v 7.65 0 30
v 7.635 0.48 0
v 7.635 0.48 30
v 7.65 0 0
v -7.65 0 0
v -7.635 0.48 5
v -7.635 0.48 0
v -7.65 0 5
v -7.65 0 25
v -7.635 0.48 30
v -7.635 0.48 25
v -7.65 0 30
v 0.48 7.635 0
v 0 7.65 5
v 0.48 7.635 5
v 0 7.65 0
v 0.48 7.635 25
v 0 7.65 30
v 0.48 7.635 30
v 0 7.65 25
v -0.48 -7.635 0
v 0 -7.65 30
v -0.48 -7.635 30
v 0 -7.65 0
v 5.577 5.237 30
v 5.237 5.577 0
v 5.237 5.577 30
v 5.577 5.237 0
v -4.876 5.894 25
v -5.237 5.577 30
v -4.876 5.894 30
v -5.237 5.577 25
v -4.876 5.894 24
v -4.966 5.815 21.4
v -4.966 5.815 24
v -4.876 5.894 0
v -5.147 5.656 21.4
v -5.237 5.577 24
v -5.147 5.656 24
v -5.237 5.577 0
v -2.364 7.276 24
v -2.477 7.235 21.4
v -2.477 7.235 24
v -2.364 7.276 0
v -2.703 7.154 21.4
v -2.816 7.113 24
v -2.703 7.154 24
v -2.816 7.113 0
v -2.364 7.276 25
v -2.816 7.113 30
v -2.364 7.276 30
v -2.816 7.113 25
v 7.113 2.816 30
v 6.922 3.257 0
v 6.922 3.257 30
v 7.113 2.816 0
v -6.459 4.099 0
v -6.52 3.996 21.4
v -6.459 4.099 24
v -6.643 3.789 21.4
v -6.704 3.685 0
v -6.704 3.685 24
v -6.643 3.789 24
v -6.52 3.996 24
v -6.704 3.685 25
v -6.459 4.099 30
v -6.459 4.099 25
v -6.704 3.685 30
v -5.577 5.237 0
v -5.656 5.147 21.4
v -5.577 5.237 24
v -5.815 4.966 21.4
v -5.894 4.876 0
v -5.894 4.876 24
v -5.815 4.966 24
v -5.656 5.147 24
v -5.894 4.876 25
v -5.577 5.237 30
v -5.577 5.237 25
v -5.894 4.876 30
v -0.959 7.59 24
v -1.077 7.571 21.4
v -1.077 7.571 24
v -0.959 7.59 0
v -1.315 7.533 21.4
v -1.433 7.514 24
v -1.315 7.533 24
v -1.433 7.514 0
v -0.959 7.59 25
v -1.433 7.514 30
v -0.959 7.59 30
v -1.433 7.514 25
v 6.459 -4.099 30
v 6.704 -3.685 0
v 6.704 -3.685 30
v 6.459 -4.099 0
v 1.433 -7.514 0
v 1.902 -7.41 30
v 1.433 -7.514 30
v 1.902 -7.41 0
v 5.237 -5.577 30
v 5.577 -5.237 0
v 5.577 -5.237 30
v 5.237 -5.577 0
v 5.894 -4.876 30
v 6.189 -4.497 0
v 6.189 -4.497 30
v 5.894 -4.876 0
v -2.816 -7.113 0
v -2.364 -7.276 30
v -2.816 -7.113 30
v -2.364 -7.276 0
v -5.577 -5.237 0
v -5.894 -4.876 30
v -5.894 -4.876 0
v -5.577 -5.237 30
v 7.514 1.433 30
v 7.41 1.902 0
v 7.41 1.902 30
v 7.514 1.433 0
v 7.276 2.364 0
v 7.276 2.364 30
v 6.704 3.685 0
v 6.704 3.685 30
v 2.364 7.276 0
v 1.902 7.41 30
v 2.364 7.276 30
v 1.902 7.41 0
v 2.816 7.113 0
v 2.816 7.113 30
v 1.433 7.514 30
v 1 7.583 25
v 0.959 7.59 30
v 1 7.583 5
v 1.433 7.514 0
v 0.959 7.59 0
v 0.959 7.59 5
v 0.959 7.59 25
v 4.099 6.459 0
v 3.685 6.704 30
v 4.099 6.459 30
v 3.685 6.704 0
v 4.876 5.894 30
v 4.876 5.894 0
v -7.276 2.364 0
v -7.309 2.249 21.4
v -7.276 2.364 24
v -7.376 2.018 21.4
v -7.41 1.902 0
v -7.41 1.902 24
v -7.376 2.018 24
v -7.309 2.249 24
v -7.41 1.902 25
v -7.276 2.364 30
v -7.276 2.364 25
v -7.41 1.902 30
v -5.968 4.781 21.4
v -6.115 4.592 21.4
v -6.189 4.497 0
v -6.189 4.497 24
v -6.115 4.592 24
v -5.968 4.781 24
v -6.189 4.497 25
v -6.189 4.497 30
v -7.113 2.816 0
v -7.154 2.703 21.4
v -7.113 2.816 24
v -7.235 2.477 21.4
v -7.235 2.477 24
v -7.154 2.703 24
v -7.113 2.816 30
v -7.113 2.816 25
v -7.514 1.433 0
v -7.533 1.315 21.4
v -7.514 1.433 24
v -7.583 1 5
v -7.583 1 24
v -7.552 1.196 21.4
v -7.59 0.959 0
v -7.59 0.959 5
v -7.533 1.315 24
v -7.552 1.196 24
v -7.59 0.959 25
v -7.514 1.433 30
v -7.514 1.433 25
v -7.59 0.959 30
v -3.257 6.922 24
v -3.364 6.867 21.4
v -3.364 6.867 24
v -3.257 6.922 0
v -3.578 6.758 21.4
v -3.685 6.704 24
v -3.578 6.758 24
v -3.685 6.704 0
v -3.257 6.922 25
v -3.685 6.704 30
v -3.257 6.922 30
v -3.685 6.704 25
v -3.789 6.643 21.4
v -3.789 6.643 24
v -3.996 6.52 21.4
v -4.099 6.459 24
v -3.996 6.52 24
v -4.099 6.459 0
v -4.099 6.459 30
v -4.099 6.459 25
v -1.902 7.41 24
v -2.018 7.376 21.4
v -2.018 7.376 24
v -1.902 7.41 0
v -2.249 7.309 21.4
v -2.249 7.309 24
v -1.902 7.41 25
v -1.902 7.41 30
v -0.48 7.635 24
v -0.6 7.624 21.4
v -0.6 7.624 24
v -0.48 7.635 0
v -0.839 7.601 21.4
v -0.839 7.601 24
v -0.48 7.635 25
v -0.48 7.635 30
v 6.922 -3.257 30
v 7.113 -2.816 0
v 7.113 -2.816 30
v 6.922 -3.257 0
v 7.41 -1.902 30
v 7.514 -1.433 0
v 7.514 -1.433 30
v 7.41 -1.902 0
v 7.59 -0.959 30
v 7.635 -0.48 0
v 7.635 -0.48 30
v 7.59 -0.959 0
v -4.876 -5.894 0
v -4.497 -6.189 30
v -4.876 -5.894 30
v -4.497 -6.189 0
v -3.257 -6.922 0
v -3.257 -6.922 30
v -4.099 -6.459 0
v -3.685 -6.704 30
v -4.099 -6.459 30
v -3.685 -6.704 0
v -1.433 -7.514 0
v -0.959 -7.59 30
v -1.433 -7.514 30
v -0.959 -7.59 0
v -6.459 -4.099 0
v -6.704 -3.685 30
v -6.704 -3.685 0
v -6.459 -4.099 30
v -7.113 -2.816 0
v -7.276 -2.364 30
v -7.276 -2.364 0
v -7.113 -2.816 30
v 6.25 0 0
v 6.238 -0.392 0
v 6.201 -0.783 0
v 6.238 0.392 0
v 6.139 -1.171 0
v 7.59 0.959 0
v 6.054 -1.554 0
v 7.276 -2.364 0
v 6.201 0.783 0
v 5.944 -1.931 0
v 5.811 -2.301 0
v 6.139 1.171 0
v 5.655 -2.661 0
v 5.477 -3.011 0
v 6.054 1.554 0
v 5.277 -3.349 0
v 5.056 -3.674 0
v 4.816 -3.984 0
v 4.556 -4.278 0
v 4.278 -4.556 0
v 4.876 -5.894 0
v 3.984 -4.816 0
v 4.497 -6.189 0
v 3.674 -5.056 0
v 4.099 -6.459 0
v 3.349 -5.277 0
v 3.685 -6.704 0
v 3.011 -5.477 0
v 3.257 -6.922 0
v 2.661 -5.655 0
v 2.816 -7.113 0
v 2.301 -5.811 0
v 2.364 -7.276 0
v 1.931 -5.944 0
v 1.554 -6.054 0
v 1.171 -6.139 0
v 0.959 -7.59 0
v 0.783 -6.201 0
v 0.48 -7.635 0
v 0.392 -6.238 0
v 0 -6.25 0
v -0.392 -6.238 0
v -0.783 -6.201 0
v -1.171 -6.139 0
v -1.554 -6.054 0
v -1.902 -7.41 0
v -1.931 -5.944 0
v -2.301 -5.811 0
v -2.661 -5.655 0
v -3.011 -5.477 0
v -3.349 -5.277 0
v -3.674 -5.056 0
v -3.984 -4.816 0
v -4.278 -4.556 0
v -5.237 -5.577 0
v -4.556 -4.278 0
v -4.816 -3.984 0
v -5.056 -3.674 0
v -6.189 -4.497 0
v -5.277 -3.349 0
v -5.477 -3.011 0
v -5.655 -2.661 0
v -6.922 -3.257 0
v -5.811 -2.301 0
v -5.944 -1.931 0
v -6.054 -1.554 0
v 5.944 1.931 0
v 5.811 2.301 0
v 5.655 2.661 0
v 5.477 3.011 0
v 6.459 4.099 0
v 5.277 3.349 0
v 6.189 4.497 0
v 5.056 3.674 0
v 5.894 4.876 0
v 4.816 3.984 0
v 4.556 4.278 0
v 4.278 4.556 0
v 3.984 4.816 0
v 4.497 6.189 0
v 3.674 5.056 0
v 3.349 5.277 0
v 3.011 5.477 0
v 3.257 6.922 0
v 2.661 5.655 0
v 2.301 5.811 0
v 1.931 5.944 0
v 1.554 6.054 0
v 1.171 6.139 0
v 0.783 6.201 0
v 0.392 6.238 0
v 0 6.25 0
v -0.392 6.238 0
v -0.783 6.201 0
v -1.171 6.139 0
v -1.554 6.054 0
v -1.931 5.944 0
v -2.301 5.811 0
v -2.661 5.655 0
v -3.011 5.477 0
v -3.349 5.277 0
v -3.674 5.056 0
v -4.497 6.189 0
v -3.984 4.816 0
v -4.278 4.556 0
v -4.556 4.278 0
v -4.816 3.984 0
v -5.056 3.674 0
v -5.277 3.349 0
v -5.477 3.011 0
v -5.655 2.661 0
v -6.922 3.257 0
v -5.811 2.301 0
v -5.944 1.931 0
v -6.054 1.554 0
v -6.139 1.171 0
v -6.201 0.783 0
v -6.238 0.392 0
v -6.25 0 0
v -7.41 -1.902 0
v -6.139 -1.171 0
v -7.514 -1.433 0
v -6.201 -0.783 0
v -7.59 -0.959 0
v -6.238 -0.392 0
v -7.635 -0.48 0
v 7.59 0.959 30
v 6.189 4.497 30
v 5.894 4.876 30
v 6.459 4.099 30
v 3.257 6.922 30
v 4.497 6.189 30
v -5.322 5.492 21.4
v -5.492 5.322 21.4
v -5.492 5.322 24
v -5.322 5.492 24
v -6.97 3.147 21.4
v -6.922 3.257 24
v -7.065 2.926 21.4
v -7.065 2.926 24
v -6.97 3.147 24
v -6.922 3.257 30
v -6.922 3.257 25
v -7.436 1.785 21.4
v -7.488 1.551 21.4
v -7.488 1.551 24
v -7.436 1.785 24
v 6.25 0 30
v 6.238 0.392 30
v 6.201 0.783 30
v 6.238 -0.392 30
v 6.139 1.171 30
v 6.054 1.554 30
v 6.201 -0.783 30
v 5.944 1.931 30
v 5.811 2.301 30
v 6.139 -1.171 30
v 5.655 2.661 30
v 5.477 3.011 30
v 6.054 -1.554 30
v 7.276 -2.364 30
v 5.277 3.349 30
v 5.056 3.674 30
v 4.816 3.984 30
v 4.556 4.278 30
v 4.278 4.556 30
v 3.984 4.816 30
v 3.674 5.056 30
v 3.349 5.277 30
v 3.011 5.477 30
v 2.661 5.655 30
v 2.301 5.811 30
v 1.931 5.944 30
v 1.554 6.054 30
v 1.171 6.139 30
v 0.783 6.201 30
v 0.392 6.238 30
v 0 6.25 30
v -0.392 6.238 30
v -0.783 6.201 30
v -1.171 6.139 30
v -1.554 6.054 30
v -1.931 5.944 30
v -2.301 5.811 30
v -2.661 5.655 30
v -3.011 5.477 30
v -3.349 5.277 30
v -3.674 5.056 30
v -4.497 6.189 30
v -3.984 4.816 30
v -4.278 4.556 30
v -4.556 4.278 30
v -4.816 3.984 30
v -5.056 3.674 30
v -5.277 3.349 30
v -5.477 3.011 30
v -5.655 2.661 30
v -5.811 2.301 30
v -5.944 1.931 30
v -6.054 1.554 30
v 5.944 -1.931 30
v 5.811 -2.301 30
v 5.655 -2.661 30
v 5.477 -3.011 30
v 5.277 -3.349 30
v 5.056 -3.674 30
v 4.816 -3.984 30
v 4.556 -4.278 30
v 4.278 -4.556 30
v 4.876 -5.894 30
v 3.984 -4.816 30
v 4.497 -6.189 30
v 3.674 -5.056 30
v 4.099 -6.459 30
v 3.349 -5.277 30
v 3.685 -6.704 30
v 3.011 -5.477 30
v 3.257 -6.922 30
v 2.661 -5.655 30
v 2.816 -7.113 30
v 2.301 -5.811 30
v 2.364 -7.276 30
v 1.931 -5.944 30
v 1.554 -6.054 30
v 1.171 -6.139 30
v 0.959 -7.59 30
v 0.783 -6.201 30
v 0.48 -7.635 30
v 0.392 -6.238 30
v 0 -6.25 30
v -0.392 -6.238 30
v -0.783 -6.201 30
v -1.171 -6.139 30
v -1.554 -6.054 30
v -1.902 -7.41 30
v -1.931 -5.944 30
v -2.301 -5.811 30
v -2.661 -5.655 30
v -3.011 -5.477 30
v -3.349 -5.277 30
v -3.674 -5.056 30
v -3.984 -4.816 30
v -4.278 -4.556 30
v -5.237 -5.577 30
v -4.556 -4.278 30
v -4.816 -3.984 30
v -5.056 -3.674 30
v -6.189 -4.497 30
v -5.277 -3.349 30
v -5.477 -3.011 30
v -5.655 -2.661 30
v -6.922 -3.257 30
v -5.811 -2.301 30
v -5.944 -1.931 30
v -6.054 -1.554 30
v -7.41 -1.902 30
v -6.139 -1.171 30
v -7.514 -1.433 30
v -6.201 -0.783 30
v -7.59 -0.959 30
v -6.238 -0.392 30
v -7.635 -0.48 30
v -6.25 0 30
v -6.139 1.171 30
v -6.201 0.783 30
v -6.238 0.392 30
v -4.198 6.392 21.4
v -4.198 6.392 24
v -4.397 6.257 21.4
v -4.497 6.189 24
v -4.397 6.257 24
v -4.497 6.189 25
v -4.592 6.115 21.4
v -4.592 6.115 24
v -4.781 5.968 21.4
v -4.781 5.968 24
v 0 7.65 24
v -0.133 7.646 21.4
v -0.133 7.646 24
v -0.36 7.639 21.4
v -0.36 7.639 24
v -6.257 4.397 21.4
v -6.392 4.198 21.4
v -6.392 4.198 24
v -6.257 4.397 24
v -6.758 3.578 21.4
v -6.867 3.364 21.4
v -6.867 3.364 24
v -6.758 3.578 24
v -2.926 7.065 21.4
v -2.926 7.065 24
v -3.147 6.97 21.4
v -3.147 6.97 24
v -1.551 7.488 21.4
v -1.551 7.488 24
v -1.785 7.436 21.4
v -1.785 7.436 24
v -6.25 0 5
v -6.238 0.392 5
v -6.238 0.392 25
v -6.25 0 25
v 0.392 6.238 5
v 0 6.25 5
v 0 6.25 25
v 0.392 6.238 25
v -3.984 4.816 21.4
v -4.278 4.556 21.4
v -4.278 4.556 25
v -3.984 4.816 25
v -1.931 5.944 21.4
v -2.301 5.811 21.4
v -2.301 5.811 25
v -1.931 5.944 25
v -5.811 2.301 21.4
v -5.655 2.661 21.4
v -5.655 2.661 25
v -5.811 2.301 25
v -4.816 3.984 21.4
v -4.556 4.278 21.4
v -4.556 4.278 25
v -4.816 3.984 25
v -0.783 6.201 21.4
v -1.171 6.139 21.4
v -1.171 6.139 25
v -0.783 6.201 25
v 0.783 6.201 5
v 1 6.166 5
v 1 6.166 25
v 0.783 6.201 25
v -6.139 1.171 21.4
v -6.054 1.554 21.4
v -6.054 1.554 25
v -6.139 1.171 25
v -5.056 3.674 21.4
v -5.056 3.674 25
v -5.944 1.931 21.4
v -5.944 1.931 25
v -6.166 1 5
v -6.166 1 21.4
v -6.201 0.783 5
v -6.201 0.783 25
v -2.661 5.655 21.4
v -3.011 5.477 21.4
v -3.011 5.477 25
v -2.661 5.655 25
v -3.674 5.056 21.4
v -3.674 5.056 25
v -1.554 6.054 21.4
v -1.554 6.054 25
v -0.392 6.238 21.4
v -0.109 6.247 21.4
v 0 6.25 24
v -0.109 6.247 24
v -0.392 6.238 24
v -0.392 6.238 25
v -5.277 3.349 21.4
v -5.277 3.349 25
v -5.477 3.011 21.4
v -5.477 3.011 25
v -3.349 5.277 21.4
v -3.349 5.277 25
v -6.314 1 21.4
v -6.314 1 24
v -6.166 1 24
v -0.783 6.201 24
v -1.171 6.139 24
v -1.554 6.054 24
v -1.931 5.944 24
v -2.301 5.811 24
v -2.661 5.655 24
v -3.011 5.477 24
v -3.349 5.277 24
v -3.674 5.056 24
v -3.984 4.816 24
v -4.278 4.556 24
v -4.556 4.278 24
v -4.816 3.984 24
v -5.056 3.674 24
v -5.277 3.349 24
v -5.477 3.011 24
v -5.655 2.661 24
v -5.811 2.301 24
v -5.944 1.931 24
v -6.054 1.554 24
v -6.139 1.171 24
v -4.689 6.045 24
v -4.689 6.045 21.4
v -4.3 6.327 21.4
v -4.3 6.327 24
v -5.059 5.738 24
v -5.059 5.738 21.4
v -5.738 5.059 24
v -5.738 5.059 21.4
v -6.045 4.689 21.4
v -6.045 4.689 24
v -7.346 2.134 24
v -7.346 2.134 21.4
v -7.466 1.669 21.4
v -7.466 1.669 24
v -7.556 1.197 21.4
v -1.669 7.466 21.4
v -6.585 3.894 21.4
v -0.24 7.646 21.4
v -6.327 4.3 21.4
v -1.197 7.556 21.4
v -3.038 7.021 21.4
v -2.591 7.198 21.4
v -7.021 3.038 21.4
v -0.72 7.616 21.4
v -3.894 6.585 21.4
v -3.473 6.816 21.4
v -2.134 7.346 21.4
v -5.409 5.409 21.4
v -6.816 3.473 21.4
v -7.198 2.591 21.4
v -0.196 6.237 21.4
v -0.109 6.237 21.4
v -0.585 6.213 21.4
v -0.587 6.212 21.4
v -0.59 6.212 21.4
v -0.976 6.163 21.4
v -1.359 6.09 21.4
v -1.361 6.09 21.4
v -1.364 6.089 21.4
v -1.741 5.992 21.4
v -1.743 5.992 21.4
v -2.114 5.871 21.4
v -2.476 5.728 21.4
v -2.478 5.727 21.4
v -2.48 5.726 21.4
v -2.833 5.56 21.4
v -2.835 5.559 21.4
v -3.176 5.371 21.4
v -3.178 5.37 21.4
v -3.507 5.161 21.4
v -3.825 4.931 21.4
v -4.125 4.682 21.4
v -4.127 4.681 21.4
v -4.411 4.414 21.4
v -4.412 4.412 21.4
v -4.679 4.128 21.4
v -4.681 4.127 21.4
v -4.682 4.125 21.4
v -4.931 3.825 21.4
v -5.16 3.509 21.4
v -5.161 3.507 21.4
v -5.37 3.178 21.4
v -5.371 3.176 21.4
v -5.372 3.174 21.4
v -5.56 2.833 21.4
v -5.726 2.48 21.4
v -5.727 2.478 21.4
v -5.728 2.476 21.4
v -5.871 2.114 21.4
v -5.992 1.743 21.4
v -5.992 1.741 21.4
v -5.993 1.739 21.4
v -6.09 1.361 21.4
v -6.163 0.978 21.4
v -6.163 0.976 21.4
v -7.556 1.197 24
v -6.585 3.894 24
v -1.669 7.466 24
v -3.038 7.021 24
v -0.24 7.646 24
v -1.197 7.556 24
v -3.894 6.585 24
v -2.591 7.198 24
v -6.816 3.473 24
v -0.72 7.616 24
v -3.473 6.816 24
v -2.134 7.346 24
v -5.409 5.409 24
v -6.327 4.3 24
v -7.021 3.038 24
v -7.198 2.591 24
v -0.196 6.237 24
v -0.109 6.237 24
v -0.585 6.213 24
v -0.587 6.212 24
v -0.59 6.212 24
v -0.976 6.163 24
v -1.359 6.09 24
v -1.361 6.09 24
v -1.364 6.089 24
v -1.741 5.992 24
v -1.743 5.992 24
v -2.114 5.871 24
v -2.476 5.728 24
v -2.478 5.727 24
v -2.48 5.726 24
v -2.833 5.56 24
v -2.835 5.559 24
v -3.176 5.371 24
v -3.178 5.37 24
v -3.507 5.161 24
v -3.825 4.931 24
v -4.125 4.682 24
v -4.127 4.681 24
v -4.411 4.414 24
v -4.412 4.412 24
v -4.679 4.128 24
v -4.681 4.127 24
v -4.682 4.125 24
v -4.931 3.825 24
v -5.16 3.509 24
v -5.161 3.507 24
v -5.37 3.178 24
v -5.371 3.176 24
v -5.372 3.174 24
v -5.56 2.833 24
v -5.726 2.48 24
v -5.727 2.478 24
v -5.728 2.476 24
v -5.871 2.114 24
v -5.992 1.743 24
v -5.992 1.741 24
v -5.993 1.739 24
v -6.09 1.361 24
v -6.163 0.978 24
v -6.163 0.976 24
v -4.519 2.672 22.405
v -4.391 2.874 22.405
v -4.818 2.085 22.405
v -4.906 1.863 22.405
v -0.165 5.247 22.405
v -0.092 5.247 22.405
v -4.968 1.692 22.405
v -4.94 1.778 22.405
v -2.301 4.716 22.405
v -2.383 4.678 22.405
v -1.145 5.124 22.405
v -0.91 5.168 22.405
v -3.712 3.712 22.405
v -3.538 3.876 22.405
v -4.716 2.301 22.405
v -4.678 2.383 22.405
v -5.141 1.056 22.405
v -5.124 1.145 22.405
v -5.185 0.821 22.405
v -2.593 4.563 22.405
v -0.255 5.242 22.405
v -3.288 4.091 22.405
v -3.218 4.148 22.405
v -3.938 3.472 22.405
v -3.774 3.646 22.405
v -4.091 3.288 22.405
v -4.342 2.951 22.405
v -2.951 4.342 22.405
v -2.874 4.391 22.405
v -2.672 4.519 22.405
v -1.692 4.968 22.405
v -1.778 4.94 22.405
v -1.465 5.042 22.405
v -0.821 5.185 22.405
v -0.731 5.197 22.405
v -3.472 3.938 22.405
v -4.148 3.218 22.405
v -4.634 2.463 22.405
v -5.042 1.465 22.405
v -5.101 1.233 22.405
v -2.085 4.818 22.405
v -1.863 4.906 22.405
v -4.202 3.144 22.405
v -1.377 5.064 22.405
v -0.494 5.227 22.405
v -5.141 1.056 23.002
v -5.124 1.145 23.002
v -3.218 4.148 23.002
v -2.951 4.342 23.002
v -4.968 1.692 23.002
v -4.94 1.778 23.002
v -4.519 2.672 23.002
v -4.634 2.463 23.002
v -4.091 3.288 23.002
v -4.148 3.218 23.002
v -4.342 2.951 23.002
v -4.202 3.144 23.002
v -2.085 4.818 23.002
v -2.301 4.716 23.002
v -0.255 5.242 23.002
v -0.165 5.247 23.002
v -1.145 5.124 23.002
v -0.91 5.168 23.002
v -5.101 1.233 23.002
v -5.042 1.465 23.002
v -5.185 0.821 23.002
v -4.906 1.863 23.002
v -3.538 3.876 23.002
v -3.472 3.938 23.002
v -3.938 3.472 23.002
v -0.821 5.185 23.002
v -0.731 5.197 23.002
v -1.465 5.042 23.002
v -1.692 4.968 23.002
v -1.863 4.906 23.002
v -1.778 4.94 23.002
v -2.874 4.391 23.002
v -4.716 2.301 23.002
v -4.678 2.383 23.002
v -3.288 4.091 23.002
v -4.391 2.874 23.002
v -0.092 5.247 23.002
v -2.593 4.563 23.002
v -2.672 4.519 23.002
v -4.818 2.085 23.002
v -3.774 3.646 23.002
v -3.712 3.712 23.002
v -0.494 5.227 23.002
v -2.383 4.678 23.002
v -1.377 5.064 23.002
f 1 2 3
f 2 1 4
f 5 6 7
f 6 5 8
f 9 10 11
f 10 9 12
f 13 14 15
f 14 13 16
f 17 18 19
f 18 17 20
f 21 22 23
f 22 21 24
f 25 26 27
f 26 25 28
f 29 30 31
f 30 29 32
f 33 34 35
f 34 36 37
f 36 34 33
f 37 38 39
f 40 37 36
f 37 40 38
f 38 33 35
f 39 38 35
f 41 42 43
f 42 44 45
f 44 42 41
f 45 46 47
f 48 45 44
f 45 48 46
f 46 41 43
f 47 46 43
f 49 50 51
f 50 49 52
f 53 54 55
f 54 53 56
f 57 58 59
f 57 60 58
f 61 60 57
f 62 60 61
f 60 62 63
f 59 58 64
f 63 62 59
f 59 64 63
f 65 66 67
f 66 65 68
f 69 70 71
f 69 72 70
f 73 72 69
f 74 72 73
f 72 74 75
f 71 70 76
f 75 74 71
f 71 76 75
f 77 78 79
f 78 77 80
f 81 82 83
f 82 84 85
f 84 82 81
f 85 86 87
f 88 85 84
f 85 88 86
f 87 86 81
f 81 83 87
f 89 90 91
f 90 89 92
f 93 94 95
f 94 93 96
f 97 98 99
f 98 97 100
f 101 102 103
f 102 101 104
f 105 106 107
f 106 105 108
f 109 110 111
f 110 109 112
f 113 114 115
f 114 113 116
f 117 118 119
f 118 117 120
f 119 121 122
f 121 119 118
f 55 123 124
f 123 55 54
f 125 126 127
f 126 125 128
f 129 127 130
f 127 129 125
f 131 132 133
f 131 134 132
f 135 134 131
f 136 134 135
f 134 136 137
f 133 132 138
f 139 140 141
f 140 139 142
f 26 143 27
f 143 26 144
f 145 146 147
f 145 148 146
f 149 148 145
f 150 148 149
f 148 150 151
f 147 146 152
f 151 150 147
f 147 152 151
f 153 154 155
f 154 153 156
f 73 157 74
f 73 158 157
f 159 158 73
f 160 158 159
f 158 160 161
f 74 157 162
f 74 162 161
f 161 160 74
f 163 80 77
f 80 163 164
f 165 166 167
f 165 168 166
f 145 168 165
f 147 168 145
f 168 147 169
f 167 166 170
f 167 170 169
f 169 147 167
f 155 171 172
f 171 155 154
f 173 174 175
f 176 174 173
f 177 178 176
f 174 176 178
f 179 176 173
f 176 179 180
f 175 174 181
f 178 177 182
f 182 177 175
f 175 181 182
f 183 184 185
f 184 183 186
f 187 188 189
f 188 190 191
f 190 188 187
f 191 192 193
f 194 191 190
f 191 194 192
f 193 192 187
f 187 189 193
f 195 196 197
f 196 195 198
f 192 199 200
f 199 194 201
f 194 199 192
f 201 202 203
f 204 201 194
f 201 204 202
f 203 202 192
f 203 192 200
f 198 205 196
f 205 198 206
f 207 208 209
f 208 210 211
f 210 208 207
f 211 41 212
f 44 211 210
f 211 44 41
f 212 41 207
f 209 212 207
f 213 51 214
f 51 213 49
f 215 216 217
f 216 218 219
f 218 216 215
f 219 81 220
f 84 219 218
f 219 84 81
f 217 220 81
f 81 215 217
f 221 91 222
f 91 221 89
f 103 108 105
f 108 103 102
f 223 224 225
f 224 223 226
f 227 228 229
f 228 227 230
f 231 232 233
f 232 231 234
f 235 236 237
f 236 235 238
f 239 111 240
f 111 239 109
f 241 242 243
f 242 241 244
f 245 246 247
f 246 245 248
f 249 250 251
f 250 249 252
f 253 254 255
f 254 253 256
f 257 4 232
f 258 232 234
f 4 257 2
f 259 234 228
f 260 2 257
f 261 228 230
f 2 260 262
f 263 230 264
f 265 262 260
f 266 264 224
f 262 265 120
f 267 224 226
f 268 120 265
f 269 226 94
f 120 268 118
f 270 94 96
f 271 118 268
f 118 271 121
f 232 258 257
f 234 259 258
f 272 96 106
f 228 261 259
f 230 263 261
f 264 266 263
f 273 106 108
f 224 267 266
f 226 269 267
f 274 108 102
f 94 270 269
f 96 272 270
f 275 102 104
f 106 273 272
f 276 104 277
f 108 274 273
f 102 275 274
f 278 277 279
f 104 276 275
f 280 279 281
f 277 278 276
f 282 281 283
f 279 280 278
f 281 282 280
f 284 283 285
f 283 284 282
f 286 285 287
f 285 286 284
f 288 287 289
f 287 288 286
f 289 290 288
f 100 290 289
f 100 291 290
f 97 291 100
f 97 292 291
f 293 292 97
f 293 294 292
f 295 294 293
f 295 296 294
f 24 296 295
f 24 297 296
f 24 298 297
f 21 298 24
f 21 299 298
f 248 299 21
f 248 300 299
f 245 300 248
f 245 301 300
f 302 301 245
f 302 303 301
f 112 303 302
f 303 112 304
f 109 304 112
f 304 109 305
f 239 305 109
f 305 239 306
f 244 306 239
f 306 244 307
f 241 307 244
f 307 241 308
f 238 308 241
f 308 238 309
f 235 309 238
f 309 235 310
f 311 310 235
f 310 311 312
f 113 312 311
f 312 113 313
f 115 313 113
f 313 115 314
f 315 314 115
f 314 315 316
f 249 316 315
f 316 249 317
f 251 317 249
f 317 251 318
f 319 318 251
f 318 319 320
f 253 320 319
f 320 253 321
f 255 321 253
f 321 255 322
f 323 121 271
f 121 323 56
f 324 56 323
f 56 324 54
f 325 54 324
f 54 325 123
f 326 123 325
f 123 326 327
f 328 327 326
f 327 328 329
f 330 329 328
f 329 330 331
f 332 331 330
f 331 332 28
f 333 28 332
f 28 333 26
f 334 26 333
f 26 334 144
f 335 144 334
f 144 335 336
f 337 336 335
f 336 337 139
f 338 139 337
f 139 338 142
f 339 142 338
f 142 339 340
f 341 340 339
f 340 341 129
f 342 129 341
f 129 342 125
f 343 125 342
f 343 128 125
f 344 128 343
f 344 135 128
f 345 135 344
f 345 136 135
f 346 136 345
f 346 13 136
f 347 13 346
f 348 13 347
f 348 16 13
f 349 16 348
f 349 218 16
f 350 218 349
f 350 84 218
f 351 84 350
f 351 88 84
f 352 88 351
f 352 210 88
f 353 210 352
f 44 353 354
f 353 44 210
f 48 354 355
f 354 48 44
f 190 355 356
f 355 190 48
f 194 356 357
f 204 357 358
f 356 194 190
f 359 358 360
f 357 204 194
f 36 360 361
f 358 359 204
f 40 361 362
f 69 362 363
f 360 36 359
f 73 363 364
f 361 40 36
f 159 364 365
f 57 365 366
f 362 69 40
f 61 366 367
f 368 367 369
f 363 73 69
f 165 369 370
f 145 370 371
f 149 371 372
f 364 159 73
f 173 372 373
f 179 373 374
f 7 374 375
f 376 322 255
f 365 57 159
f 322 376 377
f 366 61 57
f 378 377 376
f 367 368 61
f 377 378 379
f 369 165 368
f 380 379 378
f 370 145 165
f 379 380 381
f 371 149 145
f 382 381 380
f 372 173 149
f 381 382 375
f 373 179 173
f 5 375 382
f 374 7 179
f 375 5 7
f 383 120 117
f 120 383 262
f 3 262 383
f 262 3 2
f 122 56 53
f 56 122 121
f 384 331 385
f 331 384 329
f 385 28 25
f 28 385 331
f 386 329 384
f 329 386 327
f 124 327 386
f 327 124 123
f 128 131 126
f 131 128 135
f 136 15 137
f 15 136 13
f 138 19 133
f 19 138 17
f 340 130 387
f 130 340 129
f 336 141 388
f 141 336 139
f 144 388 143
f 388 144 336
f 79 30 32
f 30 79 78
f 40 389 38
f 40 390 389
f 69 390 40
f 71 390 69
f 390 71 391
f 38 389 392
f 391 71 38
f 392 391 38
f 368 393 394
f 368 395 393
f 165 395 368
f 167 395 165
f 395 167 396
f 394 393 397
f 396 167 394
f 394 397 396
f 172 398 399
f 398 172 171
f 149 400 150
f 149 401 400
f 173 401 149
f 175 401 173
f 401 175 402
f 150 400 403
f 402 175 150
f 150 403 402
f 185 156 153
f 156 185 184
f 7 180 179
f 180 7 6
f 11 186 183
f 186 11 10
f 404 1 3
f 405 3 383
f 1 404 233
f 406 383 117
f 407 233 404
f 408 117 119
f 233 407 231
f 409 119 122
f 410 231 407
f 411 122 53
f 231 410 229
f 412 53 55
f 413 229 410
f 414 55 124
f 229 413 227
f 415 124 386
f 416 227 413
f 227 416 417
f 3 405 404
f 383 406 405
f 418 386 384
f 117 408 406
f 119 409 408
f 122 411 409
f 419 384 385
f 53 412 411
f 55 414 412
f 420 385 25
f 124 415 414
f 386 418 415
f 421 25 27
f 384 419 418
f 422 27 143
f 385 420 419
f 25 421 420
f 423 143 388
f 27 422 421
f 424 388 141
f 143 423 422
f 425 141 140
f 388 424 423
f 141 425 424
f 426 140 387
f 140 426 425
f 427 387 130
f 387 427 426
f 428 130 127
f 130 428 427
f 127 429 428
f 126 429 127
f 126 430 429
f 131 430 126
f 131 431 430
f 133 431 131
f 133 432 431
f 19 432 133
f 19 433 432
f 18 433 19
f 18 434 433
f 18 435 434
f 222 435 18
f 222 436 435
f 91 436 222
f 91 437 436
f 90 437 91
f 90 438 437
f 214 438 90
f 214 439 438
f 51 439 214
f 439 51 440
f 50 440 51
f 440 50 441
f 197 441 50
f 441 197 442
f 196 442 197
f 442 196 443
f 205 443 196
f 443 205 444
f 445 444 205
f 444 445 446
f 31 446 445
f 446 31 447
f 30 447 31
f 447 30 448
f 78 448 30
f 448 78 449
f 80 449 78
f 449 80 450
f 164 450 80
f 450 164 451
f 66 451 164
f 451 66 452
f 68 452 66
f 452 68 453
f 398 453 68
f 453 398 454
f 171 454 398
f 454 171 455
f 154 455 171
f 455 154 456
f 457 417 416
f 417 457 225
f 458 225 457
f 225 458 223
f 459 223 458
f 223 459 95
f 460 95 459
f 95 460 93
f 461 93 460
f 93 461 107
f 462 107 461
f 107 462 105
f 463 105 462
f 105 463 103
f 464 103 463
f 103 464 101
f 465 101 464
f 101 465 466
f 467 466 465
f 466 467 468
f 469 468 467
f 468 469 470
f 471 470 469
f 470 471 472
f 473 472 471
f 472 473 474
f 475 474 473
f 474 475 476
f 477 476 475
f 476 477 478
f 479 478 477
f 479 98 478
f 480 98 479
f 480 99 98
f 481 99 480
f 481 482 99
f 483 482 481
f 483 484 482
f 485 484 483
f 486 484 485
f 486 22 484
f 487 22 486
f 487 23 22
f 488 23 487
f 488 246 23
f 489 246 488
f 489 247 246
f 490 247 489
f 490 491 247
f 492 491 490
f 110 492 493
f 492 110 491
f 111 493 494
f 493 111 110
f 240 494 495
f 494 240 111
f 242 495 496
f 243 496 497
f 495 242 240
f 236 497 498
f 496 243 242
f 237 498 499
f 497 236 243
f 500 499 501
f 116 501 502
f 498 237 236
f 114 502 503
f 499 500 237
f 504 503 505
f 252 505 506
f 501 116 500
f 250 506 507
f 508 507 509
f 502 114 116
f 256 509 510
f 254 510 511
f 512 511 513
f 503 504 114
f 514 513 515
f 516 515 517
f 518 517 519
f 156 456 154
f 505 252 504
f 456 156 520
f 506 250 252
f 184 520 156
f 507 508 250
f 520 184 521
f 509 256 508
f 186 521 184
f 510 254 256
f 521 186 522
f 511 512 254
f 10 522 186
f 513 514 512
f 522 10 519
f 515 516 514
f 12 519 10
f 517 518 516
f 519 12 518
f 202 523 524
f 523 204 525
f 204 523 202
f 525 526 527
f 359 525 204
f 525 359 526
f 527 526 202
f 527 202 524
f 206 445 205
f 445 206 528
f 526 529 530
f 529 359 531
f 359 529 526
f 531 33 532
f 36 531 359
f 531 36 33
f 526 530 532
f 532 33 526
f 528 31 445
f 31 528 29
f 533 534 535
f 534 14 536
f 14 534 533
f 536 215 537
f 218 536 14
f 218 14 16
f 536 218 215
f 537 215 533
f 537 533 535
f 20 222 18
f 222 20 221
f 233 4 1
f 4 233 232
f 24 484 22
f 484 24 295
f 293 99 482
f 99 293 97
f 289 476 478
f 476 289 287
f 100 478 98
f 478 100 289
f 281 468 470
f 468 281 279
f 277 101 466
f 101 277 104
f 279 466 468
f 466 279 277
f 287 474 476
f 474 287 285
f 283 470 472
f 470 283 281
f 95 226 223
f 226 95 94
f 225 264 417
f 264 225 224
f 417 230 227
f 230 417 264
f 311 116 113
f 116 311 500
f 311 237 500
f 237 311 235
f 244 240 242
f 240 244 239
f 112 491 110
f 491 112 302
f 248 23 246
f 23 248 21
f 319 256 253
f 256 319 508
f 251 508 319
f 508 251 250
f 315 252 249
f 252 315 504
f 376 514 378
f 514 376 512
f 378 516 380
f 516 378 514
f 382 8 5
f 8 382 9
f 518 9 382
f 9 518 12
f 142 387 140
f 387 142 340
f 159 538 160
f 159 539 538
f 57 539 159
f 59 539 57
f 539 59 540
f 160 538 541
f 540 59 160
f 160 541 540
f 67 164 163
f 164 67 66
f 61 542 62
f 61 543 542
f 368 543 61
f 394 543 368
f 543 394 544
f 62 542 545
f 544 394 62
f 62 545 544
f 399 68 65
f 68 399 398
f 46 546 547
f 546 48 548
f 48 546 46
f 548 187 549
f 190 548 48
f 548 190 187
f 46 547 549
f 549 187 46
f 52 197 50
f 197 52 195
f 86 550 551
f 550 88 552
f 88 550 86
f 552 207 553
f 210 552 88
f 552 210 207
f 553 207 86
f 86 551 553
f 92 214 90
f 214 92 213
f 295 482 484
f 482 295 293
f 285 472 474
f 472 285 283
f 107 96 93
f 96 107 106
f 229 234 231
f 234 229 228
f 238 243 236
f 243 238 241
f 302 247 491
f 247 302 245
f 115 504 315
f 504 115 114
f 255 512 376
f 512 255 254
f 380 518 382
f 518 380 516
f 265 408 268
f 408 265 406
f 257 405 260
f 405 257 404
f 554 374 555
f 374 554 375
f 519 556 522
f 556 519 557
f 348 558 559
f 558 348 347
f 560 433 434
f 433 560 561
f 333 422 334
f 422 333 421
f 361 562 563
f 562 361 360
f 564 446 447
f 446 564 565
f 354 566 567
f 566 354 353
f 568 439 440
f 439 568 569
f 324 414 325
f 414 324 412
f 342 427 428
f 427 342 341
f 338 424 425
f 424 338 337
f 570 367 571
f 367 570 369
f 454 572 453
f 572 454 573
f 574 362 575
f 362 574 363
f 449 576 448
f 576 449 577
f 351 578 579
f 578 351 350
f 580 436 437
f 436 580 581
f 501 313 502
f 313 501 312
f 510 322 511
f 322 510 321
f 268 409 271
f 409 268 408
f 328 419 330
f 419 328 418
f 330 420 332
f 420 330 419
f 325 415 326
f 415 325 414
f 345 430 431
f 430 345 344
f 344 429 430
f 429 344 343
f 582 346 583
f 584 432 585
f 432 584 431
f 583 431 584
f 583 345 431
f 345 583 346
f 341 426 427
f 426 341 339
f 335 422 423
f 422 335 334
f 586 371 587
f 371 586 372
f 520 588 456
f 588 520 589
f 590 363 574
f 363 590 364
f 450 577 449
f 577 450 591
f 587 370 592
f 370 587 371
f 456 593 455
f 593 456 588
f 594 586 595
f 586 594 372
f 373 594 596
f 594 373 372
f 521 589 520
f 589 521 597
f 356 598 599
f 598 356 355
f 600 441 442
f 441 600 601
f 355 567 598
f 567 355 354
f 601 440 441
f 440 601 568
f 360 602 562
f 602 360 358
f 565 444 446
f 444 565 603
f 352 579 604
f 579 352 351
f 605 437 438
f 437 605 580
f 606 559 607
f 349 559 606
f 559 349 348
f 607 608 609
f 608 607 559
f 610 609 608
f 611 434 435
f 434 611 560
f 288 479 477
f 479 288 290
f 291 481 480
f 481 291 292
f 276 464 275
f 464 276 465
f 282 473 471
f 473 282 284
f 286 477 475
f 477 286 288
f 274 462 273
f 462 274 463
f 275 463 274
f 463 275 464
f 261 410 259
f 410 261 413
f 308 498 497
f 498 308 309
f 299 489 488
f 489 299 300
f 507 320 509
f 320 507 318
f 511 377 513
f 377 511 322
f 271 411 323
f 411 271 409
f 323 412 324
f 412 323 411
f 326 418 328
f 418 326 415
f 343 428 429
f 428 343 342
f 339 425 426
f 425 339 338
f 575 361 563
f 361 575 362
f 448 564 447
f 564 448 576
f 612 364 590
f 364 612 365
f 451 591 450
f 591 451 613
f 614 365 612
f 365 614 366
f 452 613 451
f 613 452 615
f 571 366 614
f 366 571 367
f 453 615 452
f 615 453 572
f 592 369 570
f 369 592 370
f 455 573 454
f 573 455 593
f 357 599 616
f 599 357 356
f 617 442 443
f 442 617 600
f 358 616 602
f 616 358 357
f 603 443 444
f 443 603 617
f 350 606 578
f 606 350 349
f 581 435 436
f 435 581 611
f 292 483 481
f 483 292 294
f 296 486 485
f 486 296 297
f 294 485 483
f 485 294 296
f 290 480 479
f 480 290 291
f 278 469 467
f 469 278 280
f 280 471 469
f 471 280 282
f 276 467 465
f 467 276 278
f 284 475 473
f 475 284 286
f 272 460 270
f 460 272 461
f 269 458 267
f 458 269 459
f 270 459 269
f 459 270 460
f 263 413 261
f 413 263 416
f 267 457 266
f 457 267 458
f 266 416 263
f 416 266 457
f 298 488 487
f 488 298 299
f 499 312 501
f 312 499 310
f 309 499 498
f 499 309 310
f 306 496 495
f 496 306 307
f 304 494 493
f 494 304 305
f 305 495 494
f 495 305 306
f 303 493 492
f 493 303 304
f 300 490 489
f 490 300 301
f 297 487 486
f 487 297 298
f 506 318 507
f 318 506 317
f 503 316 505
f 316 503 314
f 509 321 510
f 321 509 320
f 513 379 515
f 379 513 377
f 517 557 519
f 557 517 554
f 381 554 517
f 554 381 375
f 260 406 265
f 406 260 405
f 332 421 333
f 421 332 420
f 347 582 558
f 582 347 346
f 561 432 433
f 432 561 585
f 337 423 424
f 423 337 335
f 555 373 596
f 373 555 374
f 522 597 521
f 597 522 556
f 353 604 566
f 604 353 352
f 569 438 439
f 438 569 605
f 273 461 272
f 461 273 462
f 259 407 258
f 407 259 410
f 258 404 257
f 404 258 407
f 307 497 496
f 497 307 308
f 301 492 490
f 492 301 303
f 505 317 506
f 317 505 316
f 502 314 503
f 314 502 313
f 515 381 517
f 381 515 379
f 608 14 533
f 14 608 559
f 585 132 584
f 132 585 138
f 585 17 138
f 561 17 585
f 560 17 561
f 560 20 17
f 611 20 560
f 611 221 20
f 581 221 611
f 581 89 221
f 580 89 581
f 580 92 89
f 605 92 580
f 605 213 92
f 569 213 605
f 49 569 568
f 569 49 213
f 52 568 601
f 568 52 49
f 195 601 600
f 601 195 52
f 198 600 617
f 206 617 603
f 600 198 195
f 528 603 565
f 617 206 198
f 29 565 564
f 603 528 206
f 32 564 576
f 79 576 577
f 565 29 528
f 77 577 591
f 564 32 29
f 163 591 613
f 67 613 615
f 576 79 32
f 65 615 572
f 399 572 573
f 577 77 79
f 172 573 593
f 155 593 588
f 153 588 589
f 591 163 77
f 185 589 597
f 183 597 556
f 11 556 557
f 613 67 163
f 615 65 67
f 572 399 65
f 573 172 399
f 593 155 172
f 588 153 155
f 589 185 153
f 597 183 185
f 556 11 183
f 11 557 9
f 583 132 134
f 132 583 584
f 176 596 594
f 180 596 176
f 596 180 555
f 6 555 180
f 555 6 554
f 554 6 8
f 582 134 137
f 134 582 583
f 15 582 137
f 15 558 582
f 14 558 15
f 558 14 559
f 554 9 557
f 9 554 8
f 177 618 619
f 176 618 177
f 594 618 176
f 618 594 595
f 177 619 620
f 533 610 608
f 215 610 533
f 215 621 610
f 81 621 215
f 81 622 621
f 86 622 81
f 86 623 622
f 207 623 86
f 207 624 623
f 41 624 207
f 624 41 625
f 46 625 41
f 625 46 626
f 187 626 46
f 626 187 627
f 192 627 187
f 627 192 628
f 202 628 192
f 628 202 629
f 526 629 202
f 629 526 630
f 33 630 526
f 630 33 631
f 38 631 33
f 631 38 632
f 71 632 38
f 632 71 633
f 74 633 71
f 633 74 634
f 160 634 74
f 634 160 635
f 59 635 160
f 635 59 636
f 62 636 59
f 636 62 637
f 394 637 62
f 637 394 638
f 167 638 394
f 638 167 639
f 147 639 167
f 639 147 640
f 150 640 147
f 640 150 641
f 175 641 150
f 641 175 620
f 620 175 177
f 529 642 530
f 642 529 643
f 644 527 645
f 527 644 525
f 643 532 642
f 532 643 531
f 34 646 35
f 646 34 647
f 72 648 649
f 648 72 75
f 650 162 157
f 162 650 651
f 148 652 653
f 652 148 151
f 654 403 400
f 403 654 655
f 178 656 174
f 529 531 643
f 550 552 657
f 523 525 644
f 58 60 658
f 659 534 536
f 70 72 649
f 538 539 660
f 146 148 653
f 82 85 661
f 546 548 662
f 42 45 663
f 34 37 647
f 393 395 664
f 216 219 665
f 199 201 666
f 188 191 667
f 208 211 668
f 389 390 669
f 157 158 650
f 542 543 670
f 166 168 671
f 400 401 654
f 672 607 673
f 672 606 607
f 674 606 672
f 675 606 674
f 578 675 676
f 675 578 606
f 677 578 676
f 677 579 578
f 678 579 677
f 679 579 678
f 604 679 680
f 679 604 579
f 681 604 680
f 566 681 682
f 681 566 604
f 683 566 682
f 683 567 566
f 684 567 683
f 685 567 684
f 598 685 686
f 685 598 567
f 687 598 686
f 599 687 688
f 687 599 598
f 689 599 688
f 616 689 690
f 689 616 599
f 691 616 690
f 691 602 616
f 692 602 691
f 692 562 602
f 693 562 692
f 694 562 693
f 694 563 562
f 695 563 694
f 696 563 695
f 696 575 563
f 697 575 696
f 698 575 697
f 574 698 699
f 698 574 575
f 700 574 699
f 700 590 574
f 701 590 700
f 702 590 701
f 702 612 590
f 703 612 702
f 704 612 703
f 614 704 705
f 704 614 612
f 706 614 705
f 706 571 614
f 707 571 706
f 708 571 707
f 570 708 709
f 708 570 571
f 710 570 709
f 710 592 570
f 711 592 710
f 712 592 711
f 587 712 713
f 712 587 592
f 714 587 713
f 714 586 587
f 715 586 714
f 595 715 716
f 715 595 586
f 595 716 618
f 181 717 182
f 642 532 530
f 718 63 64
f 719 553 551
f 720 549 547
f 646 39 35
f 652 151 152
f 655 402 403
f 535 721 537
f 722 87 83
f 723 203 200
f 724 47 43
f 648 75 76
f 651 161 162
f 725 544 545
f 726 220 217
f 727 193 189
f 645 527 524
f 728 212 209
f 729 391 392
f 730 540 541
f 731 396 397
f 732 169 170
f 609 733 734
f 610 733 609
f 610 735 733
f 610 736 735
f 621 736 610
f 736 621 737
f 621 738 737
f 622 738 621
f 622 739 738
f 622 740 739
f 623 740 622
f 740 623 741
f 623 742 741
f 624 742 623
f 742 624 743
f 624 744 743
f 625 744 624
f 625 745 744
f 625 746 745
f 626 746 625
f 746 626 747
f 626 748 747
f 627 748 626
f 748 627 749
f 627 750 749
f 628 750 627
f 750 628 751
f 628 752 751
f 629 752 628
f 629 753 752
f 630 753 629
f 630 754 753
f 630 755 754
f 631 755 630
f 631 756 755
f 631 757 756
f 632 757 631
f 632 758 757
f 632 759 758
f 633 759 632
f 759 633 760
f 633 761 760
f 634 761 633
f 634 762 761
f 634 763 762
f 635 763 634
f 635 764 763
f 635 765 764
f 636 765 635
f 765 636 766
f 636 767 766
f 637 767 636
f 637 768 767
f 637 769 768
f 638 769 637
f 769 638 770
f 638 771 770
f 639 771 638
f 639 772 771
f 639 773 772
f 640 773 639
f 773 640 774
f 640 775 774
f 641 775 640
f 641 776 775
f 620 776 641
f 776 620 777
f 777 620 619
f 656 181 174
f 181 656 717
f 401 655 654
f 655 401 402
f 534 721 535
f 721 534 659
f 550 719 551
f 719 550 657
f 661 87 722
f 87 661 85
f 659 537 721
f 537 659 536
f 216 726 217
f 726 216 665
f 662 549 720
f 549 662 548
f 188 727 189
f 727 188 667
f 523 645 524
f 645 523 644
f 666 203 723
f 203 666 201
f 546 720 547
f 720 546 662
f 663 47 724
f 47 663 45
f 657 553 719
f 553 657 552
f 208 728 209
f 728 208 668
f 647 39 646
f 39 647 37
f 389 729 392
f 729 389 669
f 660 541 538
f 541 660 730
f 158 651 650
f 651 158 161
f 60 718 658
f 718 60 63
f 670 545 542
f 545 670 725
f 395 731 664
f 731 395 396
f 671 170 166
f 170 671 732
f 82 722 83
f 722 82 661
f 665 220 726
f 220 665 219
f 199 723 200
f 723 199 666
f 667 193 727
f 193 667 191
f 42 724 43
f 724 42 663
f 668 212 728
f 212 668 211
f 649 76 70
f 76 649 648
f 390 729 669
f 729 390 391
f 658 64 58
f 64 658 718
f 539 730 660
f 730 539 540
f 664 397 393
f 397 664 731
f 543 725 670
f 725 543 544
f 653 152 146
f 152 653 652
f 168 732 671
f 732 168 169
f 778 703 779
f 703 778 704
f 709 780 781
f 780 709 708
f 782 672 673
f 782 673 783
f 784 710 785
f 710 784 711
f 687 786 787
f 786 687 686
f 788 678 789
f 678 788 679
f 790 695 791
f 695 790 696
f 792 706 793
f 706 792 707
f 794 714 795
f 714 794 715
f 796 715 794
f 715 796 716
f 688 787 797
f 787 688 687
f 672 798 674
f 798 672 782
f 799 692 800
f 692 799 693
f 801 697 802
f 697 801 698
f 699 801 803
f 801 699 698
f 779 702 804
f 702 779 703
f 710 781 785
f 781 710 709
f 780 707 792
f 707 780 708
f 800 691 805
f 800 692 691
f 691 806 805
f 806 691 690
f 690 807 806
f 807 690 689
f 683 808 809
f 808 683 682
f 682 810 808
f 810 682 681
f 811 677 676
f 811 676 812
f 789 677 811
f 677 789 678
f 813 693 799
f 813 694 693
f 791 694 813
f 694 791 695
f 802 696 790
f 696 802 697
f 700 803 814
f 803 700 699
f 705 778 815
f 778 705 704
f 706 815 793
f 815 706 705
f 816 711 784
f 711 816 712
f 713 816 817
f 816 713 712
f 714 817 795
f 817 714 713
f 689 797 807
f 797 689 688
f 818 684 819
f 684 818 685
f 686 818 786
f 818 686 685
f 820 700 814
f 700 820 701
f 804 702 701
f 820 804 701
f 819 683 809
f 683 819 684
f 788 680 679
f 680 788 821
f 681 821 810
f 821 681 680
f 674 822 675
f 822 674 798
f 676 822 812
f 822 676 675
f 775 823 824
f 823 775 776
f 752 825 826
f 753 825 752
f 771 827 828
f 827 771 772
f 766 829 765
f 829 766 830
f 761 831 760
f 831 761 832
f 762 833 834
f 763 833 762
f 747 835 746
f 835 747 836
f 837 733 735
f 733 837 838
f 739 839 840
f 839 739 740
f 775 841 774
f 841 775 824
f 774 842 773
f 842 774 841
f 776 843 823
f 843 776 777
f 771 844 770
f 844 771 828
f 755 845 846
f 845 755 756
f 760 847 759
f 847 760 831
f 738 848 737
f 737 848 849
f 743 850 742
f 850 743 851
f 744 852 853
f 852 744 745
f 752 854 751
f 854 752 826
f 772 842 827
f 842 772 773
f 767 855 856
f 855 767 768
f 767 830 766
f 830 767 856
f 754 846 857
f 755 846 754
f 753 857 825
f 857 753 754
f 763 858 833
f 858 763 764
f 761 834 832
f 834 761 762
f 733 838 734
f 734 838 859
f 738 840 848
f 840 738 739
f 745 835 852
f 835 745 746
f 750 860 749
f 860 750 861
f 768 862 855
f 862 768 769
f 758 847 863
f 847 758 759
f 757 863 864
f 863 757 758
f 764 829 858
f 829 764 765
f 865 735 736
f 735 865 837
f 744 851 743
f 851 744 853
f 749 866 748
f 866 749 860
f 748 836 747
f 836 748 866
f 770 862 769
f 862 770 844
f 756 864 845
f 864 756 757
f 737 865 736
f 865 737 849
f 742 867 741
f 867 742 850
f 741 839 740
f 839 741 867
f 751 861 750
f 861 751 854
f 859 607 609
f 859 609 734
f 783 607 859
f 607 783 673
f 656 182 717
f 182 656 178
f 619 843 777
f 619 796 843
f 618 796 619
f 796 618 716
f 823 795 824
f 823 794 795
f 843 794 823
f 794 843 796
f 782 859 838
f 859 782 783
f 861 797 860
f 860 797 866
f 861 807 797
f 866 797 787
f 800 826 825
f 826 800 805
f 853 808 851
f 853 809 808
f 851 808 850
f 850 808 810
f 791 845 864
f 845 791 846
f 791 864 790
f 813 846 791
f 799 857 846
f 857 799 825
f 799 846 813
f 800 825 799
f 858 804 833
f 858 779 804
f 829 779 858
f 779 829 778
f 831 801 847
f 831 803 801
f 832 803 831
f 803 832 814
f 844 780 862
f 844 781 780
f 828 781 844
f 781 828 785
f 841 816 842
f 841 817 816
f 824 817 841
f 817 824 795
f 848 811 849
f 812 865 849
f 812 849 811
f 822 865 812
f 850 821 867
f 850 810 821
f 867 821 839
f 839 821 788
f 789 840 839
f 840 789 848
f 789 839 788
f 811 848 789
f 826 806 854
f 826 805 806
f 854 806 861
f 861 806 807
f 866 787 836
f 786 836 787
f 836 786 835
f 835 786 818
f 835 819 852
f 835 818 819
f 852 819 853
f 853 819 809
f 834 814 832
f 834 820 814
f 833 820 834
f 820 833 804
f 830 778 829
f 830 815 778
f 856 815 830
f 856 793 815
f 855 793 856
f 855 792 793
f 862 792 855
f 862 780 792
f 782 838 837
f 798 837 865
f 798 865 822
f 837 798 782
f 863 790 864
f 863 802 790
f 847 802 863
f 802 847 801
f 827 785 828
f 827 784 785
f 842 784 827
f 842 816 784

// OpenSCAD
$fn = 100;

eps1 = 0+0.01;
eps2 = 2 * eps1;

id = 12.5;
wall = 1.4;
od = id + 2*wall;
height = 30;

cut = 1;

// From thingiverse 109467
module pie(radius, angle, height, spin=0) {
    // Negative angles shift direction of rotation
    clockwise = (angle < 0) ? true : false;
    // Support angles < 0 and > 360
    normalized_angle = abs((angle % 360 != 0) ? angle % 360 : angle % 360 + 360);
    // Select rotation direction
    rotation = clockwise ? [0, 180 - normalized_angle] : [180, normalized_angle];
    // Render
    if (angle != 0) {
        rotate([0,0,spin]) linear_extrude(height=height)
            difference() {
                circle(radius);
                if (normalized_angle < 180) {
                    union() for(a = rotation)
                        rotate(a) translate([-radius, 0, 0]) square(radius * 2);
                }
                else if (normalized_angle != 360) {
                    intersection_for(a = rotation)
                        rotate(a) translate([-radius, 0, 0]) square(radius * 2);
                }
            }
    }
}


module body() {
difference() {
  cylinder(d=od, h=height);
  translate([0, 0, -eps1]) cylinder(d=id, h=height+eps2);
}
}


module cross_cut() {
translate([0, 0, 5+20-cut]) 
hull() {
cube([eps1, od, cut]); 
rotate([0, 0, 90]) cube([eps1, od, cut]); 
}
}

module cuts() {
translate([0, 0, 5]) cube([cut, od, 20]); 

rotate([0, 0, 90]) translate([0, 0, 5]) cube([cut, od, 20]); 
  cross_cut();
  
  cross_cut();
}



//cross_cut();

module clip() {
  translate([0, 0, -cut])
  difference() {
    intersection() {
      cylinder(d=od, h=height);
      #cross_cut();  
    }
    cylinder(d=id-2, h=height);
  }

}

module main() {
difference() {
body();
  cuts();
}
}

main();



//pie(od, 270, 2*dd+eps2);

dd = 1.3;

translate([0, 0, 5+20-2*dd-cut])
rotate([0, 0, 171])
difference() {
cylinder(d=od, h=dd*2);
translate([0, 0, -eps1]) cylinder(d1=id, d2=id-dd*2, h=dd+eps2);
translate([0, 0, dd]) cylinder(d2=id, d1=id-dd*2, h=dd+eps1);
  translate([0, 0, -eps1]) pie(od, 280, 2*dd+eps2);
  cylinder(d=id - 2, h=2*dd);
}
//#clip();

//rotate([0, -45, 0]) rotate([0, 0, 45]) cross_cut();

//difference() {
//cylinder(d=id, h=3);
//cylinder(d1=id, 
//}
